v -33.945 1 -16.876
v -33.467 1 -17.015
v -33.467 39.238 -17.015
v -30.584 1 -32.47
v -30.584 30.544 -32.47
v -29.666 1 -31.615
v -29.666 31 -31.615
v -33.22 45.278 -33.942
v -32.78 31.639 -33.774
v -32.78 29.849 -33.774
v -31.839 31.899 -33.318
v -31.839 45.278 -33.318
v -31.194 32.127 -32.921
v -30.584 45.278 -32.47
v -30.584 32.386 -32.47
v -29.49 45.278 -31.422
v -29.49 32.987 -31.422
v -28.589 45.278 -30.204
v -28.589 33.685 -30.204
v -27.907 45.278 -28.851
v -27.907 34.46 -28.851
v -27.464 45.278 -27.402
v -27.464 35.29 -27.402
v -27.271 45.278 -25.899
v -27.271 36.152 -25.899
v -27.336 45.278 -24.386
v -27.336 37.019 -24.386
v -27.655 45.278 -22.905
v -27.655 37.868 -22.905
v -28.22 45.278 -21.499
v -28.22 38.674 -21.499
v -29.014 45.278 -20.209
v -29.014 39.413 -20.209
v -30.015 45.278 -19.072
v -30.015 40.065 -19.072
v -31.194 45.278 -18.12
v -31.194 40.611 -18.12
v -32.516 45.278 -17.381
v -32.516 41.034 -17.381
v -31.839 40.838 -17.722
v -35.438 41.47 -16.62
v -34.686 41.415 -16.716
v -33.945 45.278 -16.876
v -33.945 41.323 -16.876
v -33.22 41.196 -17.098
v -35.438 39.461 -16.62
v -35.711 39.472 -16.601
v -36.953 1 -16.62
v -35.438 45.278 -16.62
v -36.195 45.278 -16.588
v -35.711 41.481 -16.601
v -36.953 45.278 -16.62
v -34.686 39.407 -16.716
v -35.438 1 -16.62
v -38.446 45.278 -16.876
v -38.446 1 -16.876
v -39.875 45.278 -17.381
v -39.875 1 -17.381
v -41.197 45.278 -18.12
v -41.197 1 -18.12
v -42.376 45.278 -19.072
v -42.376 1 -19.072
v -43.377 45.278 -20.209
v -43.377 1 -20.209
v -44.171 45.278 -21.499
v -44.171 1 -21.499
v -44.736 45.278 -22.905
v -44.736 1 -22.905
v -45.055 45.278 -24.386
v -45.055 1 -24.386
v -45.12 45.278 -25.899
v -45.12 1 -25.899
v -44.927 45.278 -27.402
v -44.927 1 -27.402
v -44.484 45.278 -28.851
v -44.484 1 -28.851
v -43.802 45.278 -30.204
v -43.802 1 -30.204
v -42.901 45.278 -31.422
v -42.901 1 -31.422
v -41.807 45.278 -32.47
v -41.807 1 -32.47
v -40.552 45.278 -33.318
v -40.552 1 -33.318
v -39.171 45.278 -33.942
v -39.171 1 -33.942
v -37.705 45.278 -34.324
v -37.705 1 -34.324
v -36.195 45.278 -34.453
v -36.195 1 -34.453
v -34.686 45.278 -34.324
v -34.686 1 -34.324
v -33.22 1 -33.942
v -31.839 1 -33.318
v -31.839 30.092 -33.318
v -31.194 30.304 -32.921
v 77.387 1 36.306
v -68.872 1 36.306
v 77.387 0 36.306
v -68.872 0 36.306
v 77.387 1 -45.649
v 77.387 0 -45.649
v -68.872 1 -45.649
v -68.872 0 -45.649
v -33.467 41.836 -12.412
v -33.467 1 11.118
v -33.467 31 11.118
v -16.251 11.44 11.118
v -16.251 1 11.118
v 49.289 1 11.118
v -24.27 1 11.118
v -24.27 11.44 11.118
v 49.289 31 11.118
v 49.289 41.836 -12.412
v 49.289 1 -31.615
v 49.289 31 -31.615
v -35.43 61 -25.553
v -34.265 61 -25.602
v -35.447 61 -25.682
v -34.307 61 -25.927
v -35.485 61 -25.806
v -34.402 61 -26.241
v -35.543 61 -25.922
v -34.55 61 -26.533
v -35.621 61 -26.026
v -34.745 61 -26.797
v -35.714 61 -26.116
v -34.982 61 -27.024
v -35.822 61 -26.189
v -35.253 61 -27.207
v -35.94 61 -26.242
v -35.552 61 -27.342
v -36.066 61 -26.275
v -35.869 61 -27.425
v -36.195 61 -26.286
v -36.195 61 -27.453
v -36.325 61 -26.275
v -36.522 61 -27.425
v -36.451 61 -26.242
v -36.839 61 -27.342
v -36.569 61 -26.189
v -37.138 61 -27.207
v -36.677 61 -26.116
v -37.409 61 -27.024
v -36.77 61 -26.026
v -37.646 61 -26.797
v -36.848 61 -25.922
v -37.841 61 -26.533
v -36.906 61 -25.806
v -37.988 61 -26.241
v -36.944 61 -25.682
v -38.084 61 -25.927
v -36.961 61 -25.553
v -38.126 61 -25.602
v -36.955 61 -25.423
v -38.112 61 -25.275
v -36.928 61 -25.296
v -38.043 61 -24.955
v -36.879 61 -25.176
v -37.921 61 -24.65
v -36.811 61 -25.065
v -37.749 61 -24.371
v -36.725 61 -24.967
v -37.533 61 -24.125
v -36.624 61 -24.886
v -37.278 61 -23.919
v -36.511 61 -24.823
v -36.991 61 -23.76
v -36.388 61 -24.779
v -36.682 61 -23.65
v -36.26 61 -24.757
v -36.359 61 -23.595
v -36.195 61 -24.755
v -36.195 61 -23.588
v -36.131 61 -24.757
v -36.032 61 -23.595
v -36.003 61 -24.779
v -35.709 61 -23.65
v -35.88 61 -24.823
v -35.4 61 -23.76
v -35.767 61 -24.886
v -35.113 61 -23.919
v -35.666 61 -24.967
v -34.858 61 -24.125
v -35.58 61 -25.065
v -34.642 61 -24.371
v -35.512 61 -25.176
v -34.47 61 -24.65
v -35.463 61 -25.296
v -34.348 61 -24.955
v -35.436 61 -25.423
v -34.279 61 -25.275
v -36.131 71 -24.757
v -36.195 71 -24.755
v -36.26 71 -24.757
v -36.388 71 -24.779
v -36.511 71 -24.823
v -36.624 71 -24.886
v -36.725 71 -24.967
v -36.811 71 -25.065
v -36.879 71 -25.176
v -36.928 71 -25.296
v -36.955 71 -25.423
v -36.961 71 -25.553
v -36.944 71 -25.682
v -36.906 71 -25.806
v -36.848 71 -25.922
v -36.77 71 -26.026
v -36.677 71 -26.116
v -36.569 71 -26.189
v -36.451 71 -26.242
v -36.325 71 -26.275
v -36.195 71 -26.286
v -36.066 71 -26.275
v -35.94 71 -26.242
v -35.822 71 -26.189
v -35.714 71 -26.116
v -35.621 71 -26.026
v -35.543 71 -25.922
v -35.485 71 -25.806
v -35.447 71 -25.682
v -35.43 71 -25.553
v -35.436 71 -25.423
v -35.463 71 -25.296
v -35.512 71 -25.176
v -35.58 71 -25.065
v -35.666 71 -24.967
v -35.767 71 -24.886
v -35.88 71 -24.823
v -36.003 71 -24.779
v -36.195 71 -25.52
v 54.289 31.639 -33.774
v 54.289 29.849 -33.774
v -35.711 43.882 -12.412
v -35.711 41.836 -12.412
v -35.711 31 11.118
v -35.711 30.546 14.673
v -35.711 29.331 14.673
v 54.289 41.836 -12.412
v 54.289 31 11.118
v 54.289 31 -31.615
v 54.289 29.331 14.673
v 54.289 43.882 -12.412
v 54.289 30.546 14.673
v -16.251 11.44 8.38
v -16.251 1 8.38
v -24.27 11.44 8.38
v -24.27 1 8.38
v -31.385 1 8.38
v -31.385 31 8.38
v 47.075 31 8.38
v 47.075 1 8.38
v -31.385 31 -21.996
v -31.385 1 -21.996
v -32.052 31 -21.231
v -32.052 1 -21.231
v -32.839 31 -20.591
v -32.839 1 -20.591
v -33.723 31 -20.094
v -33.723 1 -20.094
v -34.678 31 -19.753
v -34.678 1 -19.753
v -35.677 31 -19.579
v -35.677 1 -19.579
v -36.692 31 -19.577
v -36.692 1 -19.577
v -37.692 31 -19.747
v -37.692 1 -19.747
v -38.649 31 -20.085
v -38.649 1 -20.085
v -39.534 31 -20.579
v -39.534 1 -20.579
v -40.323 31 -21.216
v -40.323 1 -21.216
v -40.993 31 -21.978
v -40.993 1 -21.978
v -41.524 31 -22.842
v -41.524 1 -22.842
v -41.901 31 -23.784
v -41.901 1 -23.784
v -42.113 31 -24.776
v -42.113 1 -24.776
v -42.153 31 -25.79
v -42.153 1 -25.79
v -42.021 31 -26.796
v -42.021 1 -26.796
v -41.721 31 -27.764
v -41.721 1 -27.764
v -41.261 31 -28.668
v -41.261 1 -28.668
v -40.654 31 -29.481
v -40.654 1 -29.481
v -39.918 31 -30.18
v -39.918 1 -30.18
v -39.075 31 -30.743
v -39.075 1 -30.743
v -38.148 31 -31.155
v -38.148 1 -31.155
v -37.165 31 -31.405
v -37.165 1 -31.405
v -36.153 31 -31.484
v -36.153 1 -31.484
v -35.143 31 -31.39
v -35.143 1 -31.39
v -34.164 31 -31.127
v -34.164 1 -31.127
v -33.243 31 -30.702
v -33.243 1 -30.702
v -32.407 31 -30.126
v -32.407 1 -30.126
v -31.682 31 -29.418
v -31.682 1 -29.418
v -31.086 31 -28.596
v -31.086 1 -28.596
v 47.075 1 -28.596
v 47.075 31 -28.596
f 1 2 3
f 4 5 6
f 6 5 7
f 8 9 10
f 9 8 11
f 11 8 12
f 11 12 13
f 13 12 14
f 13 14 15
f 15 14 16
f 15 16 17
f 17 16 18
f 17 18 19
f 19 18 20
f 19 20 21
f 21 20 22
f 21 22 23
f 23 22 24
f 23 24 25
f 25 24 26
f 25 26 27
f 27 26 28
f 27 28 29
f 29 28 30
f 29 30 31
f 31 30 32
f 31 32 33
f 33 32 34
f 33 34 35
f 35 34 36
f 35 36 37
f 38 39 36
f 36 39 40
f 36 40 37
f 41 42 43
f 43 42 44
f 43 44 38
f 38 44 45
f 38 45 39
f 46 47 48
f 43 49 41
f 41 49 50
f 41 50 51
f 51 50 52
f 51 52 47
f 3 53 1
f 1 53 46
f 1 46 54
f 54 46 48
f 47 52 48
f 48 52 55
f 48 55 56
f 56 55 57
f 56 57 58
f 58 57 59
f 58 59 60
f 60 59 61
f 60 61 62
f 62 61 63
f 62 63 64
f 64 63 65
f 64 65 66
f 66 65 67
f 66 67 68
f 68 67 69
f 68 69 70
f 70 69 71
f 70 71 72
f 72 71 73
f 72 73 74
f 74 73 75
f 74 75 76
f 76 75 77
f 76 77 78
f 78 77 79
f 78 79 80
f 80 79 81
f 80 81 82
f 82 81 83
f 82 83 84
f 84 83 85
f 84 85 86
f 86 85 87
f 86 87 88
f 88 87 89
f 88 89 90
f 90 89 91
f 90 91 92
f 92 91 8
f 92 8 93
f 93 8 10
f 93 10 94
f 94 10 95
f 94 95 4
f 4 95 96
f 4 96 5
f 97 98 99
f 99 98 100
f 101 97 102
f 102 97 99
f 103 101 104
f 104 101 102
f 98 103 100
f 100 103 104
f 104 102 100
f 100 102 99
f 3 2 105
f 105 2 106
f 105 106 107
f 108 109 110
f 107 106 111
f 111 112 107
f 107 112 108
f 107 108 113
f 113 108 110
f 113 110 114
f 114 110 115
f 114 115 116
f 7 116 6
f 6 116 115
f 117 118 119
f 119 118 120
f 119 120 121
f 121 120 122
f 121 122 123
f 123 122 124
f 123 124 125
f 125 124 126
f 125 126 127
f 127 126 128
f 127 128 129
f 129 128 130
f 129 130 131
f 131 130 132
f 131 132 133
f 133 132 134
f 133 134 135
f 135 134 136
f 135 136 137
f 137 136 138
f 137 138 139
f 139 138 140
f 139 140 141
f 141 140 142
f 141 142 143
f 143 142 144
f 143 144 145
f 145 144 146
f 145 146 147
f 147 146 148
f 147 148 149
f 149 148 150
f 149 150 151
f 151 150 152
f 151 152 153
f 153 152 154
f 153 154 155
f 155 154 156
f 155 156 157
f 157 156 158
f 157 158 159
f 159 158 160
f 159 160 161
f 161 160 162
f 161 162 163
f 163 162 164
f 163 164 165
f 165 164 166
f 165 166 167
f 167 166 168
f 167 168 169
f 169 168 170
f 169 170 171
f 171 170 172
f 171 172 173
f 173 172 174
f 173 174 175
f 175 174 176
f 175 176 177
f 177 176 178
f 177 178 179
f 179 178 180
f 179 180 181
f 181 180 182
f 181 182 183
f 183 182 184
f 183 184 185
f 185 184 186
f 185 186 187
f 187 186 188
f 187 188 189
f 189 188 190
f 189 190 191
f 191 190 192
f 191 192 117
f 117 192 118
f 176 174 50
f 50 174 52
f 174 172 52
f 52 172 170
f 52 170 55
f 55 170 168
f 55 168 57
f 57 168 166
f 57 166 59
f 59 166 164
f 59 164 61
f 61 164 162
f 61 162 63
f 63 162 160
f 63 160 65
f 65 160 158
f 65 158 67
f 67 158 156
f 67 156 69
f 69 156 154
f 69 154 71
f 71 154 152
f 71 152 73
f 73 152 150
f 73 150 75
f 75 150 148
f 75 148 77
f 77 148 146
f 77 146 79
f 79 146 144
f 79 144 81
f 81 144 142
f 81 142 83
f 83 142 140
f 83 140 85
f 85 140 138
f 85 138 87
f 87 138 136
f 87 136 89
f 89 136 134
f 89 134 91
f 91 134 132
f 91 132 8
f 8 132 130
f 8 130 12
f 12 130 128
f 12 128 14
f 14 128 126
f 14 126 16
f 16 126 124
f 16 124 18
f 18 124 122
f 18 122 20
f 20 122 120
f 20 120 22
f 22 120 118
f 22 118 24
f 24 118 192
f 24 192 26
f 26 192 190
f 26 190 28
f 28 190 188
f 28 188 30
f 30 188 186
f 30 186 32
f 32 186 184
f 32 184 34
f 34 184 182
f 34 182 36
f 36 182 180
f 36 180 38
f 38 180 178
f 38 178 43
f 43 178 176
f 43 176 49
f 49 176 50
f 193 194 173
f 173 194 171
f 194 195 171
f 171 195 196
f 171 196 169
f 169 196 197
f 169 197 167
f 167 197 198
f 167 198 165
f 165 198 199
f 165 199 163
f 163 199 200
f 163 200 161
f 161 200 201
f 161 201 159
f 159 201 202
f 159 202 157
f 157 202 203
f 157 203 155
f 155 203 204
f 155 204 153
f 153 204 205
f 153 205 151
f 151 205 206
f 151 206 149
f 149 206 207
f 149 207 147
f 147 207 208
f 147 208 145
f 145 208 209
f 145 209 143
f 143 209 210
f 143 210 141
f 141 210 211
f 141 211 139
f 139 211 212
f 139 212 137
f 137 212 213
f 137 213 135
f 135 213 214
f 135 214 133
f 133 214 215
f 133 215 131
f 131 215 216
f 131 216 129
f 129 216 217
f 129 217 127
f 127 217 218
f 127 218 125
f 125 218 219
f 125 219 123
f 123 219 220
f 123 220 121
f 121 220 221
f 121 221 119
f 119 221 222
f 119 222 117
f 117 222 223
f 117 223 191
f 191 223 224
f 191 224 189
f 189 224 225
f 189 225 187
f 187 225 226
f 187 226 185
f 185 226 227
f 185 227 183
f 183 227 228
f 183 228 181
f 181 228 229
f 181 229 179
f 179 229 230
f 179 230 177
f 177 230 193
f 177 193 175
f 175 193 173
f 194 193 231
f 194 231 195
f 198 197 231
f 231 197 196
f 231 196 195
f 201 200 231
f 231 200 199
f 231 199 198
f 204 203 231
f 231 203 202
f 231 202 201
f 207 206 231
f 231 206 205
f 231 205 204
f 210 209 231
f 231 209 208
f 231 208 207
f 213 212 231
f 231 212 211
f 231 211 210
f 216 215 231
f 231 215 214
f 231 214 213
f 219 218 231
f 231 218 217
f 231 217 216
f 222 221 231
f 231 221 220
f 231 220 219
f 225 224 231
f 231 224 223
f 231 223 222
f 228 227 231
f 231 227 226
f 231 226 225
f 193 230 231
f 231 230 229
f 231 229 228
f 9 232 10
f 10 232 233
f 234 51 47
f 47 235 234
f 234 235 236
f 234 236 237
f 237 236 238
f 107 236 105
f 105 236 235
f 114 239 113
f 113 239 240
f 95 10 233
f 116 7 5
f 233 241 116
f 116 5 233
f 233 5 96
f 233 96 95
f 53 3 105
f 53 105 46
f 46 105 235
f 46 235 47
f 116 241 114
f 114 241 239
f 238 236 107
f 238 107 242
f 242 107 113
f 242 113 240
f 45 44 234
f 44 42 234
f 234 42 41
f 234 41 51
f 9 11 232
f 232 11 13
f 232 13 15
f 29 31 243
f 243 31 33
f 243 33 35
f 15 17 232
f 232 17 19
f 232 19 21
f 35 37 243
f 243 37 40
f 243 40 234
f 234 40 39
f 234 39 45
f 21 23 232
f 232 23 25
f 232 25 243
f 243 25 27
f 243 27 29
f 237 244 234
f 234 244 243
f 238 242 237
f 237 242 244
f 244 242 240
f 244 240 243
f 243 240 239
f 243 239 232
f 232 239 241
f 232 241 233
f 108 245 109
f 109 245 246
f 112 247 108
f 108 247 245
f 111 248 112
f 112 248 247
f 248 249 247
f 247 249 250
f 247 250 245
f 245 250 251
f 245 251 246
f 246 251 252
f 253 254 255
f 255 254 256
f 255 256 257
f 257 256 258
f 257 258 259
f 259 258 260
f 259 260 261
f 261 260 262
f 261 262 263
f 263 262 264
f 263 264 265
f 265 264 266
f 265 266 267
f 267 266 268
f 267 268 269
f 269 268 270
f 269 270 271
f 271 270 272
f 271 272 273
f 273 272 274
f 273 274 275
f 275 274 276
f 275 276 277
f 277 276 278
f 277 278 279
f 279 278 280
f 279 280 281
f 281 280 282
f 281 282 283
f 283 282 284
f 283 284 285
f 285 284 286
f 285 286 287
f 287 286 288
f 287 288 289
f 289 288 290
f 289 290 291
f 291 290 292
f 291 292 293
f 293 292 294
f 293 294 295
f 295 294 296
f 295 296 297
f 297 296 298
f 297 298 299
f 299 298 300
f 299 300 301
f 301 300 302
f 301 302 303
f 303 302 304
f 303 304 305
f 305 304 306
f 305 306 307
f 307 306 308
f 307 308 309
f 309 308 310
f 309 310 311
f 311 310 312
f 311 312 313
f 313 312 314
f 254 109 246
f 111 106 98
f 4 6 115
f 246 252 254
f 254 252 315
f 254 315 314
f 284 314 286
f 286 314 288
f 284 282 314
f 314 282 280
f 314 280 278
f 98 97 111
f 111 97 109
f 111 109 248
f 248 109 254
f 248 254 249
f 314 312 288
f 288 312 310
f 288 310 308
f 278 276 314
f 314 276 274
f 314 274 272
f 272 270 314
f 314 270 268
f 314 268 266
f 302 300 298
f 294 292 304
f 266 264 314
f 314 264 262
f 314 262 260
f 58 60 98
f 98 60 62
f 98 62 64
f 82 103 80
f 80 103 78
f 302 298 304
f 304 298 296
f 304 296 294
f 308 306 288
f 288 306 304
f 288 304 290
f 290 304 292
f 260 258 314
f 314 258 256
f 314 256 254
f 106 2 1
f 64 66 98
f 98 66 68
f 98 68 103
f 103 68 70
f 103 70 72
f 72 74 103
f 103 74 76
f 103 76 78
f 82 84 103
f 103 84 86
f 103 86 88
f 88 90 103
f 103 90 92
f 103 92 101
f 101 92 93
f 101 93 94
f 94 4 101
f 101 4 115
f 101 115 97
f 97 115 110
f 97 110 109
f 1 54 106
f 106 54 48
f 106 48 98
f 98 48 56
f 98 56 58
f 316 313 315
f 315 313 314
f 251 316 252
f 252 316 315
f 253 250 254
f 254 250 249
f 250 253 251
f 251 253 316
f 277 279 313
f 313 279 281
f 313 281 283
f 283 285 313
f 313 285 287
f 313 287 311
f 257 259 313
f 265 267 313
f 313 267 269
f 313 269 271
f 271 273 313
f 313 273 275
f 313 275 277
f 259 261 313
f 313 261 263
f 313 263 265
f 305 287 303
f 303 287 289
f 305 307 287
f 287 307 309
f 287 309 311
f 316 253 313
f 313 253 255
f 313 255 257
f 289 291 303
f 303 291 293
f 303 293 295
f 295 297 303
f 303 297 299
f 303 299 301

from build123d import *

# Parameters (mm, degrees)
SKETCH1_W                 = 146.259710098
SKETCH1_H                 = 81.954365634
BOSS_EXTRUDE1_DEPTH       = 1
BOSS_EXTRUDE3_DEPTH       = 30
SKETCH3_R                 = 8.932317163
BOSS_EXTRUDE4_DEPTH       = 30
CHAMFER2_SIZE             = 7
CHAMFER2_SIZE2            = 15.722257417
SKETCH5_R                 = 0.765790516
BOSS_EXTRUDE5_DEPTH       = 10
BOSS_EXTRUDE10_DEPTH      = 82.756209
BOSS_EXTRUDE11_DEPTH      = 5
BOSS_EXTRUDE11_DEPTH_BACK = 85
CUT_EXTRUDE1_REACH        = 58.766
SKETCH9_W                 = 8.019759774
SKETCH9_H                 = 10.43964337


with BuildPart() as part:
    # Sketch1 → Boss-Extrude1 (new body)
    with BuildSketch(Plane(origin=(0, 0, 0), x_dir=(1, 0, 0), z_dir=(0, 1, 0))):
        with Locations((4.257398588, 4.671362068)):
            Rectangle(SKETCH1_W, SKETCH1_H)
    extrude(amount=BOSS_EXTRUDE1_DEPTH)

    # Sketch2 → Boss-Extrude3 (add)
    with BuildSketch(Plane(origin=(0, 1, 0), x_dir=(1, 0, 0), z_dir=(0, 1, 0))):
        with BuildLine():
            Line((49.289390862, 31.61533336), (49.289390862, -11.117740331))
            Line((49.289390862, -11.117740331), (-33.466817923, -11.117740331))
            Line((-33.466817923, -11.117740331), (-33.466817923, 17.014992699))
            ThreePointArc((-33.466817923, 17.014992699), (-44.839654232, 27.770758355), (-29.665757449, 31.61533336))
            Line((-29.665757449, 31.61533336), (49.289390862, 31.61533336))
        make_face()
        with BuildLine():
            Line((-31.384885653, 21.995593928), (-31.384885653, -8.380062495))
            Line((-31.384885653, -8.380062495), (47.074717384, -8.380062495))
            Line((47.074717384, -8.380062495), (47.074717384, 28.596341433))
            Line((47.074717384, 28.596341433), (-31.086300879, 28.596341433))
            ThreePointArc((-31.086300879, 28.596341433), (-42.153064375, 25.789819421), (-31.384885653, 21.995593928))
        make_face(mode=Mode.SUBTRACT)
    extrude(amount=BOSS_EXTRUDE3_DEPTH)

    # Sketch3 → Boss-Extrude4 (add)
    with BuildSketch(Plane(origin=(0, 31, 0), x_dir=(1, 0, 0), z_dir=(0, 1, 0))):
        with Locations((-36.195473967, 25.520327854)):
            Circle(SKETCH3_R)
    extrude(amount=BOSS_EXTRUDE4_DEPTH)

    # Chamfer2
    chamfer2_edges = [part.edges().sort_by_distance(p)[0] for p in [
        (-45.12779113, 61, -25.520327854),
    ]]
    chamfer2_side = [part.faces().sort_by_distance(p)[0] for p in [
        (-36.195473967, 61, -25.520327854),
    ]]
    chamfer(chamfer2_edges, length=CHAMFER2_SIZE, length2=CHAMFER2_SIZE2, reference=chamfer2_side[0])

    # Sketch5 → Boss-Extrude5 (add)
    with BuildSketch(Plane(origin=(0, 61, 0), x_dir=(1, 0, 0), z_dir=(0, 1, 0))):
        with Locations((-36.195473967, 25.520327854)):
            Circle(SKETCH5_R)
    extrude(amount=BOSS_EXTRUDE5_DEPTH)

    # Sketch7 → Boss-Extrude10 (add)
    with BuildSketch(Plane(origin=(49.289390862, 0, 0), x_dir=(0, 0, -1), z_dir=(1, 0, 0))):
        Polygon((-11.117740331, 31), (12.411619963, 41.835751537), (31.61533336, 31), align=None)
    extrude(amount=-BOSS_EXTRUDE10_DEPTH)

    # Sketch8 → Boss-Extrude11 (add, two sides)
    with BuildSketch(Plane(origin=(49.289390862, 0, 0), x_dir=(0, 0, -1), z_dir=(1, 0, 0))) as boss_extrude11_sk:
        Polygon((-11.117740331, 31), (12.411619963, 41.835751537), (31.61533336, 31), (33.773667087, 29.849066987), (33.773667087, 31.638529108), (12.411619963, 43.882217303), (-14.672774477, 30.545550786), (-14.672774477, 29.330586748), align=None)
    extrude(amount=BOSS_EXTRUDE11_DEPTH)
    extrude(boss_extrude11_sk.sketch, amount=-BOSS_EXTRUDE11_DEPTH_BACK)

    # Sketch9 → Cut-Extrude1 (cut, up to next)
    with BuildSketch(Plane.XY.offset(11.117740331), mode=Mode.PRIVATE) as cut_extrude1_sk1:
        with Locations((-20.260430368, 6.219821685)):
            Rectangle(SKETCH9_W, SKETCH9_H)
    cut_extrude1_tool1 = extrude(cut_extrude1_sk1.sketch, amount=-CUT_EXTRUDE1_REACH, mode=Mode.PRIVATE) & part.part
    add(cut_extrude1_tool1.solids().sort_by_distance((-20.26043, 6.219822, 11.11774))[0], mode=Mode.SUBTRACT)


solid = part.part
